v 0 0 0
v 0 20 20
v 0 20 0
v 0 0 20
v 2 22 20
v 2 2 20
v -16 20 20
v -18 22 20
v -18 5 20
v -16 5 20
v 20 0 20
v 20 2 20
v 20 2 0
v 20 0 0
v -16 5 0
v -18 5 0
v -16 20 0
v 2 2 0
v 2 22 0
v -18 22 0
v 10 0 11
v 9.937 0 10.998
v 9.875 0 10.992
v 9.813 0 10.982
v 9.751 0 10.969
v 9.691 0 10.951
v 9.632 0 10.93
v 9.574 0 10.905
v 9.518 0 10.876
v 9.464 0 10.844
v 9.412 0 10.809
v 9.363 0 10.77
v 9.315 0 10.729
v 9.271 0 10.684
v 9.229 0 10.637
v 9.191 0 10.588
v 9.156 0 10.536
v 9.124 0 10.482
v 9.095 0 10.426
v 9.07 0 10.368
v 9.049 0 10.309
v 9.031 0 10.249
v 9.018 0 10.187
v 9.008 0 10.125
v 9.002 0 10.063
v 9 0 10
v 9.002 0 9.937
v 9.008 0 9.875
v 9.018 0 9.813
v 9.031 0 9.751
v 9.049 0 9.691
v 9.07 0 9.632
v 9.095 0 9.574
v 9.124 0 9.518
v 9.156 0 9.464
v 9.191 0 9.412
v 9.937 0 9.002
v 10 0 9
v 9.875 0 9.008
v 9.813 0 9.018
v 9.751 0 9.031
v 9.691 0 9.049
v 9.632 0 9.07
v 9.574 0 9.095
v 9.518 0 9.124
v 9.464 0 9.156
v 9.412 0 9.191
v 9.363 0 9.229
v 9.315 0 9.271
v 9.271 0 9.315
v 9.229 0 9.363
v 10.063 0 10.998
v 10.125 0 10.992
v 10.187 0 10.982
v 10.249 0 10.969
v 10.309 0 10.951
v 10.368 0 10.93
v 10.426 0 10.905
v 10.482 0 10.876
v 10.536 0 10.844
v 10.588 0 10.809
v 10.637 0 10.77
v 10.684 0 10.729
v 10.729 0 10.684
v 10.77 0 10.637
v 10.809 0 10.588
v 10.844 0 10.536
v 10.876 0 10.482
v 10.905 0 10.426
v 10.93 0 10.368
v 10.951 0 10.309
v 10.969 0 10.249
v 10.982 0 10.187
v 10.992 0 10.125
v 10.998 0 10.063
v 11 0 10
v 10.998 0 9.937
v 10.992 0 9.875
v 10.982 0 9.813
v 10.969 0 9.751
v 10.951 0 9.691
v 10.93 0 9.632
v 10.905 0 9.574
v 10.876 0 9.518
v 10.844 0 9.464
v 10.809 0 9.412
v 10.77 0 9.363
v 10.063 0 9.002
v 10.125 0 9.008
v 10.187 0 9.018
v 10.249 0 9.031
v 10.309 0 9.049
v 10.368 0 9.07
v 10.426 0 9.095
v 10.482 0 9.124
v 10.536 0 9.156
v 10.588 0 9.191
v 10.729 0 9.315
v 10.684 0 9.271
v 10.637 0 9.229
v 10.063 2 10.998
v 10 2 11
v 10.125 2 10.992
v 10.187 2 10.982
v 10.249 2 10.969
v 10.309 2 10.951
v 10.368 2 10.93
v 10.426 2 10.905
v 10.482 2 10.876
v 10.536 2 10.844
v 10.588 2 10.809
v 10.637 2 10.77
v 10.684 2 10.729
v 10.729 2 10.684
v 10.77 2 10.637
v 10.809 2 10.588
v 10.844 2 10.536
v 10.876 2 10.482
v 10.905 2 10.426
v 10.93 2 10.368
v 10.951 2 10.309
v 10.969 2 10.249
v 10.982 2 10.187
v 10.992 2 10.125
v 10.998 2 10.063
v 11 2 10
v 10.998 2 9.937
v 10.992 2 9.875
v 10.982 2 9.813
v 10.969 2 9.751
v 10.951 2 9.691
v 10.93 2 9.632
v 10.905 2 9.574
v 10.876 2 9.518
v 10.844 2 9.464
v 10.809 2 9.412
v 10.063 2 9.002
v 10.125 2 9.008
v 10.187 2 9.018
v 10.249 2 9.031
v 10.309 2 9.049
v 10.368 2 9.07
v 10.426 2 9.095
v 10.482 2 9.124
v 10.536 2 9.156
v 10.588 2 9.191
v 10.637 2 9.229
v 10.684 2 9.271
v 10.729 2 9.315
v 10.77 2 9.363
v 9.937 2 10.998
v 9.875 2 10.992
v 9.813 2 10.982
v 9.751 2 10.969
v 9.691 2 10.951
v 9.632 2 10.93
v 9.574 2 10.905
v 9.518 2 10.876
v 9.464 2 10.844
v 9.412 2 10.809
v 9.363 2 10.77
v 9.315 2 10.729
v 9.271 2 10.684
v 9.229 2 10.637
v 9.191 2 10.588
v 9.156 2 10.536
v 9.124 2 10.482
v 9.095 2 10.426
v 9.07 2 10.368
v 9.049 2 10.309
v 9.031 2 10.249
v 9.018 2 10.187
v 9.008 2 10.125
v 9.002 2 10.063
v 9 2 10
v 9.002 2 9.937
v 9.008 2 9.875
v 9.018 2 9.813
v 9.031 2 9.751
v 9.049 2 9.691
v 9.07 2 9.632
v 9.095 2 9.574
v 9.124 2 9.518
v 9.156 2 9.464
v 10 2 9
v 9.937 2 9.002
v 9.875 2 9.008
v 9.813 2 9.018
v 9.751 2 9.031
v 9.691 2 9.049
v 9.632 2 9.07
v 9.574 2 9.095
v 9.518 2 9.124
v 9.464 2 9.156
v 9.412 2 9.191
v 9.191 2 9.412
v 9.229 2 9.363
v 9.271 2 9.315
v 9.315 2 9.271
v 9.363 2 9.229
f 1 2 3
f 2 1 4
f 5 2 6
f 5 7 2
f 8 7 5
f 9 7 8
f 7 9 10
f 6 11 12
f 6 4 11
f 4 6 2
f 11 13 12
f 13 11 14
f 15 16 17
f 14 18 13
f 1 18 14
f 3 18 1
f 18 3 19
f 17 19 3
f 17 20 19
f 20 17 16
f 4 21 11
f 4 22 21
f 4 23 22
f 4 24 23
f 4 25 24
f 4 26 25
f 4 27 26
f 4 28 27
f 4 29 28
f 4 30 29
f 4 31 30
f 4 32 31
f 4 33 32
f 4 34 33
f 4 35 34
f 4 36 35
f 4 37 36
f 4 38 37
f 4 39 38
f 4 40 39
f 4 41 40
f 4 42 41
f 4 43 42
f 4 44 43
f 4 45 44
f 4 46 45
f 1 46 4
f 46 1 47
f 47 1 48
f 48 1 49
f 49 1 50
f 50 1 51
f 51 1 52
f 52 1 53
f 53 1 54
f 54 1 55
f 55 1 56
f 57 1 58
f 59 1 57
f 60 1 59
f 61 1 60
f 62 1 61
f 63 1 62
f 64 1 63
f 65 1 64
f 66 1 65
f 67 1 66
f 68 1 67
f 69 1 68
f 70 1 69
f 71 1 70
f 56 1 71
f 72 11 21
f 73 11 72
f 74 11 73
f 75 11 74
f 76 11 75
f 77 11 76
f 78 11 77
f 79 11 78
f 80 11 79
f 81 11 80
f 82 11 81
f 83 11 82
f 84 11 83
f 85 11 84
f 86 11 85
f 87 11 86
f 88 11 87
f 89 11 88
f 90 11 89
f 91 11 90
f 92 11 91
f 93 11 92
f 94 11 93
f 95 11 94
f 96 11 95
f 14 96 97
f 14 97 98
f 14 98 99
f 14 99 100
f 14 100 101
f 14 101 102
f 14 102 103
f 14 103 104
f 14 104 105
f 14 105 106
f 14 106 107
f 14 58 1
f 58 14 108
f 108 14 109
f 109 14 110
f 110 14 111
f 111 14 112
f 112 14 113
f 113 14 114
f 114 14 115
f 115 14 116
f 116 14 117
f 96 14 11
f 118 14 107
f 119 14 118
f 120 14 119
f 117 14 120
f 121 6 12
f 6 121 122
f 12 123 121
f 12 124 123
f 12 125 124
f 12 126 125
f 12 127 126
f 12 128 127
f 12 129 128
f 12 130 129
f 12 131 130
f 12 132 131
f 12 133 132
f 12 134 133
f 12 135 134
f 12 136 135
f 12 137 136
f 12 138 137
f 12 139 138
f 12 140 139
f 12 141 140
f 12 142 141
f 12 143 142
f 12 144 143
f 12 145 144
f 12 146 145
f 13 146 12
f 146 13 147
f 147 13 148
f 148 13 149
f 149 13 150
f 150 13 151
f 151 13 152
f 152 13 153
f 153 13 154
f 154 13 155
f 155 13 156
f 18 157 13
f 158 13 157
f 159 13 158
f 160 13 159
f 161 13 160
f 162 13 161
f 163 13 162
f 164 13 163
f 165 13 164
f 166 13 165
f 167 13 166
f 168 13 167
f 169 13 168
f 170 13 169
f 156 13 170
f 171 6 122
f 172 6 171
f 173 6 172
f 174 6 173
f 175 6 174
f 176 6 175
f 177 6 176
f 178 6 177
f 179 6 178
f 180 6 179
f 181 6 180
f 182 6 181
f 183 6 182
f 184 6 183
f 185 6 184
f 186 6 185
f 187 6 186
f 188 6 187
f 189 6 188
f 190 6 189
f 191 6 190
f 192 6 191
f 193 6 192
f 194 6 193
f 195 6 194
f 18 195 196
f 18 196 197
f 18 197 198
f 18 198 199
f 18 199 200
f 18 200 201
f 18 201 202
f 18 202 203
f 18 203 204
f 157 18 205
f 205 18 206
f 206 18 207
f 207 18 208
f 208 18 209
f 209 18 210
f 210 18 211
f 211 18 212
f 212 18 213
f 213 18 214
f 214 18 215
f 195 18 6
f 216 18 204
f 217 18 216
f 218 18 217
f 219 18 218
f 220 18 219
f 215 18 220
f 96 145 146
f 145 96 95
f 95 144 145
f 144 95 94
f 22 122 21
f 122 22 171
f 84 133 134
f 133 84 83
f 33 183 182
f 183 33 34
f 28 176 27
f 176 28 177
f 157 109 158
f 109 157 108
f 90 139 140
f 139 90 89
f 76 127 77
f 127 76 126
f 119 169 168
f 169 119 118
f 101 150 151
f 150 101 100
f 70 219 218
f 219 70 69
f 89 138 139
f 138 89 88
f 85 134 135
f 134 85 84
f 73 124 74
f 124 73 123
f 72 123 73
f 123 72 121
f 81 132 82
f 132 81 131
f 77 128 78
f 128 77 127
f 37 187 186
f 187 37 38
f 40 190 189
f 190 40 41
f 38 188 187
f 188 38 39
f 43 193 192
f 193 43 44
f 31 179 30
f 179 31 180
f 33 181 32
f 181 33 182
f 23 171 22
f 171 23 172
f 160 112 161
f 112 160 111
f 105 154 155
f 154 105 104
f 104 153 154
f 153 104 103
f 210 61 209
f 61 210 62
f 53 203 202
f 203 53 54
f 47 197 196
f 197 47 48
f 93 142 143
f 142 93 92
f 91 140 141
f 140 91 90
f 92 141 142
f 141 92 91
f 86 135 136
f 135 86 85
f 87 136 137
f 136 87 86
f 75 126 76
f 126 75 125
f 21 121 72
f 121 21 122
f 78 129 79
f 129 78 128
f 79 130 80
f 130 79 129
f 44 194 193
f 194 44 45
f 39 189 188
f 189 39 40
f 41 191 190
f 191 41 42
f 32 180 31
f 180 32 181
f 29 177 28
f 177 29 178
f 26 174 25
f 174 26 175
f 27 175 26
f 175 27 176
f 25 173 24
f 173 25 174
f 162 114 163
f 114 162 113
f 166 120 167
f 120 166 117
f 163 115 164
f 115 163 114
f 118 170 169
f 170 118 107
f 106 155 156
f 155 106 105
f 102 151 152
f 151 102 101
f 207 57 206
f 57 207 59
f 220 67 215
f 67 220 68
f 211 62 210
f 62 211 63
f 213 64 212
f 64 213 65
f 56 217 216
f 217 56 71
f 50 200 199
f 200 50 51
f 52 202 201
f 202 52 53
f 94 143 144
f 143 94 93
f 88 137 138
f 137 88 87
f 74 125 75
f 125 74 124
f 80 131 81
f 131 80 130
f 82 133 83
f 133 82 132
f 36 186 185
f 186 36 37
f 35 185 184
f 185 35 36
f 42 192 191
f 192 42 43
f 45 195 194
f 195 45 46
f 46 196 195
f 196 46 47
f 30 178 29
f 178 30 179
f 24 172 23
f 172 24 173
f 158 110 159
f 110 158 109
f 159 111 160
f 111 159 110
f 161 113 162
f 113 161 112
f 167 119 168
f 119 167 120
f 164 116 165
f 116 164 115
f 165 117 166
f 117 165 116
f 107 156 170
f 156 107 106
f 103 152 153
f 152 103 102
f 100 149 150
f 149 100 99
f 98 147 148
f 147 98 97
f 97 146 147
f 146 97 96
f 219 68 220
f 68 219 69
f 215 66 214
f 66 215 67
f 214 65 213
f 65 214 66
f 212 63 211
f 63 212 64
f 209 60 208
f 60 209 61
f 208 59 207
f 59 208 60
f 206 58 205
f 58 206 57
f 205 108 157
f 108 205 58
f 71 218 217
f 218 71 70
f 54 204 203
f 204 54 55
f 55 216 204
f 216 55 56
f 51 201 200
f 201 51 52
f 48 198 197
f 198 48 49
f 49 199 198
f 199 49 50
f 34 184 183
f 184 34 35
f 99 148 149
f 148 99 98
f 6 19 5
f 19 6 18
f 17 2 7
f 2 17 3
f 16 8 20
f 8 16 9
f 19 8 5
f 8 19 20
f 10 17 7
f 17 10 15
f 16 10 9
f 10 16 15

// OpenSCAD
$fn = 100;

difference() {
    cube([20,2,20]);
    translate([10, 2, 10]) {
        rotate([90, 0, 0]){
            cylinder(2, r = 1);
        }
    }
}
    
cube([2,20,20]);
translate([-18,20,0]) {
    cube([20,2,20]);
}

translate([-18,5,0]) {
    cube([2,15,20]);
}
